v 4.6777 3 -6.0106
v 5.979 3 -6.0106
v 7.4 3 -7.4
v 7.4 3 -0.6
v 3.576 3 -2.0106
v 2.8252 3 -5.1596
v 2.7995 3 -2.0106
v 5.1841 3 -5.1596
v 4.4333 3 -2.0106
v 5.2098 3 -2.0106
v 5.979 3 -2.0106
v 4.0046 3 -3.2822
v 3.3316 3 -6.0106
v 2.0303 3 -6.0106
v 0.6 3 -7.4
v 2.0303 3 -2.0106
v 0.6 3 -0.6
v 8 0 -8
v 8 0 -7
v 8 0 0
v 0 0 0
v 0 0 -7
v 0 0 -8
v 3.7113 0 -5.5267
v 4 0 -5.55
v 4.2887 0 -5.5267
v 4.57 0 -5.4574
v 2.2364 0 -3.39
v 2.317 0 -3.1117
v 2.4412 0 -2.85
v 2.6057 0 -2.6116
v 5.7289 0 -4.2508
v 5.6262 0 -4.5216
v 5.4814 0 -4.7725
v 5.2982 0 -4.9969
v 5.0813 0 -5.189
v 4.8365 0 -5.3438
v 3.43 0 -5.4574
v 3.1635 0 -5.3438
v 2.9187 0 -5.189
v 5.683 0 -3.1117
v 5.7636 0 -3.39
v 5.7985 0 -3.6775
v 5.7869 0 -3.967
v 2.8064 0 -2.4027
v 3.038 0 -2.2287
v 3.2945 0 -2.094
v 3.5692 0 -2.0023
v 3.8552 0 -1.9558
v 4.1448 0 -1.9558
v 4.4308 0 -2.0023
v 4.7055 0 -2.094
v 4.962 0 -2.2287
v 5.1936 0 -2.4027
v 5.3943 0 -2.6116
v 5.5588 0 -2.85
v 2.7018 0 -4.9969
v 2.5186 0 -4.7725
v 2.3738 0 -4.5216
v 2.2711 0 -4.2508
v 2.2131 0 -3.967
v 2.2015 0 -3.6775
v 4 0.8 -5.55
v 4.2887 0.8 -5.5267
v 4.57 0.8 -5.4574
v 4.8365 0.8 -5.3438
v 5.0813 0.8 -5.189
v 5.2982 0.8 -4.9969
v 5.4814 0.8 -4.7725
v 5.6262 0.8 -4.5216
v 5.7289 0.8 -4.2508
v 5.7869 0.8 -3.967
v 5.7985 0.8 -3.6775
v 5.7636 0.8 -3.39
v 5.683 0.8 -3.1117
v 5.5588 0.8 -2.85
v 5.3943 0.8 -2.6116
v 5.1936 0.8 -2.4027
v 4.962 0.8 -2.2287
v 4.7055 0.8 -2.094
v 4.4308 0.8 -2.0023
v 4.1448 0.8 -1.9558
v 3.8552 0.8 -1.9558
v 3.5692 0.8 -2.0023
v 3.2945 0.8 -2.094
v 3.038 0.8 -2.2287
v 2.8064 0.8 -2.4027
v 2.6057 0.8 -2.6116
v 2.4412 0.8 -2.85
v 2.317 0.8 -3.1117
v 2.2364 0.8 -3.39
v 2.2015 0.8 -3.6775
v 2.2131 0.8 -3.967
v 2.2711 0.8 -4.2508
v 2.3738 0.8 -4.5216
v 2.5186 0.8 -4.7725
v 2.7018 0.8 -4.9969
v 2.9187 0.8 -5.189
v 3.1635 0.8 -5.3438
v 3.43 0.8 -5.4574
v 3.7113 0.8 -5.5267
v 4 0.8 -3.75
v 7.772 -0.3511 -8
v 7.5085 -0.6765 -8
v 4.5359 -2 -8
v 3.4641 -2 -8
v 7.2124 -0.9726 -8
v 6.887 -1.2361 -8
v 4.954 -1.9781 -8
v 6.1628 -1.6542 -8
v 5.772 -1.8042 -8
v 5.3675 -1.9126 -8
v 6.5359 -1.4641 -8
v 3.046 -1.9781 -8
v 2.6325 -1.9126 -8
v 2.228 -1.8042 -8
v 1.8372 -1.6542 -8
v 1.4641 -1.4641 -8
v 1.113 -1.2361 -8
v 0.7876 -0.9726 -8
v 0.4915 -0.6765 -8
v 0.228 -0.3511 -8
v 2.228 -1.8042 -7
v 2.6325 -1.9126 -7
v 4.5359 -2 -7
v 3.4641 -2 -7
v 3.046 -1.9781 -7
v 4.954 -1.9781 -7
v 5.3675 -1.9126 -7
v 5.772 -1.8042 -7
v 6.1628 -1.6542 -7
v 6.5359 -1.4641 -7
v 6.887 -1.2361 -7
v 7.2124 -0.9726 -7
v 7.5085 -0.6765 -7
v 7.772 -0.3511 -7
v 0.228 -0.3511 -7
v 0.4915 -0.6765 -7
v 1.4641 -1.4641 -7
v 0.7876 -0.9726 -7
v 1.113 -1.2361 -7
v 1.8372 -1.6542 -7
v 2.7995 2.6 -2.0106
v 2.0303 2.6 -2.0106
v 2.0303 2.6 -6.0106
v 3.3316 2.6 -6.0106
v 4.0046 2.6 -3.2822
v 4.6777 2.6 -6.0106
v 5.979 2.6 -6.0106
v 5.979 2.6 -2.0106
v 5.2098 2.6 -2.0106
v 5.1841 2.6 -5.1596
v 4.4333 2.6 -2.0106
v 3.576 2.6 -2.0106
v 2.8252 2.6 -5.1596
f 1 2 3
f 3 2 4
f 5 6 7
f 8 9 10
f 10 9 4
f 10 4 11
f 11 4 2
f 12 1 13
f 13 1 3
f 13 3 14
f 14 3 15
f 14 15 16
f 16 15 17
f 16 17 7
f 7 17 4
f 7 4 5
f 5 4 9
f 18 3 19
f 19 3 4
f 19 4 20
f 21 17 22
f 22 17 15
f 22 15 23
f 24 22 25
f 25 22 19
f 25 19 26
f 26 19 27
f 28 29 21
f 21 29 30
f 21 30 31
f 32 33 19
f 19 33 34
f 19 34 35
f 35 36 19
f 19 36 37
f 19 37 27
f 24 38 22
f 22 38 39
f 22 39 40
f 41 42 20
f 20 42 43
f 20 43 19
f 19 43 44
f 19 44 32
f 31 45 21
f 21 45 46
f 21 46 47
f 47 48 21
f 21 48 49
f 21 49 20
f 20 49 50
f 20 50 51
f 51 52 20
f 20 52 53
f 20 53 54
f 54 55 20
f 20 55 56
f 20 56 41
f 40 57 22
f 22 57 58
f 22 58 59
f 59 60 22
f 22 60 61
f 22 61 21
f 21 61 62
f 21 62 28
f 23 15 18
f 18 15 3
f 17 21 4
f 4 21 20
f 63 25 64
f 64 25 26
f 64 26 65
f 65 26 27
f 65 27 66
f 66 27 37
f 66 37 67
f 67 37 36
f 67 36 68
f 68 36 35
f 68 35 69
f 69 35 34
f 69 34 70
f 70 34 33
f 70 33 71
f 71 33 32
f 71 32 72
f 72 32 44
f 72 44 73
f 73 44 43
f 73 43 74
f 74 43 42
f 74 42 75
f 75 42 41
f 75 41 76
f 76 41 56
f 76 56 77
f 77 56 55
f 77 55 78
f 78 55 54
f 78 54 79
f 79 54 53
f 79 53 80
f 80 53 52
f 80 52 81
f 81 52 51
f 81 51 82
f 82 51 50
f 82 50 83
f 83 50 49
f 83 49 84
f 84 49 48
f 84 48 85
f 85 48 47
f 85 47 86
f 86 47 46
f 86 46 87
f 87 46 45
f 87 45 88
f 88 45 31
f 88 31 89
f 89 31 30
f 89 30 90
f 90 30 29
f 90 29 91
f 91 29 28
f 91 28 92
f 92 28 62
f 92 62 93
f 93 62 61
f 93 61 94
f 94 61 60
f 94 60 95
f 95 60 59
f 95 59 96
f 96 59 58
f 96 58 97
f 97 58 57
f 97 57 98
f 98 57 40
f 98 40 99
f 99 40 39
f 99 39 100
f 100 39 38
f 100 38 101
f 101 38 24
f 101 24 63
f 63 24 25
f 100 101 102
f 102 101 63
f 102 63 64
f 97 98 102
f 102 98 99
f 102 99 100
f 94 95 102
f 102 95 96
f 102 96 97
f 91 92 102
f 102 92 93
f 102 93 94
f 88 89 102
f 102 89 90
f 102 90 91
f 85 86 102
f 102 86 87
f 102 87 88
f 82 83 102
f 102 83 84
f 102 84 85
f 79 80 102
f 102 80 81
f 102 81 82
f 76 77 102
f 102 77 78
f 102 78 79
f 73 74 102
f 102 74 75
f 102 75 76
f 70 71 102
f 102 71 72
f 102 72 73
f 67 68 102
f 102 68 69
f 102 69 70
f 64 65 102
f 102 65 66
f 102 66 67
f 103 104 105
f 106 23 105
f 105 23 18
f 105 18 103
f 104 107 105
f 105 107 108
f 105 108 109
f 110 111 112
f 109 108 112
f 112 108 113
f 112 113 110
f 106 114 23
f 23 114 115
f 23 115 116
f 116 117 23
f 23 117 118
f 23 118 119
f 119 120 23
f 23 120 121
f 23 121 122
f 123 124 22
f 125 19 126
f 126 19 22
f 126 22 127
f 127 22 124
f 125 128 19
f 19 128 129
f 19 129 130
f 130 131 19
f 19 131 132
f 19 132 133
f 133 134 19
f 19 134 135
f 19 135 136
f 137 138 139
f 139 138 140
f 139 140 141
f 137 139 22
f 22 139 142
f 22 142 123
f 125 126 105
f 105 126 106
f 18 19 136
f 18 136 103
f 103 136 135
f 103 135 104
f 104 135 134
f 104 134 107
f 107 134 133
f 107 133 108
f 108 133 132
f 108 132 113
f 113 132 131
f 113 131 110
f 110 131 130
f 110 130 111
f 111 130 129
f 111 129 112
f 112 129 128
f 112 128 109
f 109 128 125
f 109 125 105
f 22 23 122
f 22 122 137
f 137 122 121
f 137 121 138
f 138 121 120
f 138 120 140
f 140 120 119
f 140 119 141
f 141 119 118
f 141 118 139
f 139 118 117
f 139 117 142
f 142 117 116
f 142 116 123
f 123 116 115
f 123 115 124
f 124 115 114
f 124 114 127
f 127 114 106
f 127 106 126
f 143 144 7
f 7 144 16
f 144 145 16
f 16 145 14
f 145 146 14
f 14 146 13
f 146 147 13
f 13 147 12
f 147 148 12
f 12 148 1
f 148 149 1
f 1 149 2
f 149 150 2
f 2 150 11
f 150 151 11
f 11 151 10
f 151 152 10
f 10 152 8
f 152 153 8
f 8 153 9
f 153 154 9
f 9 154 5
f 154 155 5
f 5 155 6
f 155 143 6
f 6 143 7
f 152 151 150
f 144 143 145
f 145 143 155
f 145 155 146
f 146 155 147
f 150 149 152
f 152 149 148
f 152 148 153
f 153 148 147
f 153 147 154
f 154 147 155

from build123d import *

# Parameters (mm, degrees)
SKETCH1_W               = 8
SKETCH1_H               = 8
BOSS_EXTRUDE1_DEPTH     = 3
CUT_EXTRUDE1_DEPTH      = 12.704699911
CUT_EXTRUDE1_DEPTH_BACK = 12.704699911
CUT_EXTRUDE2_DEPTH      = 11
SKETCH4_R               = 1.8
CUT_EXTRUDE3_DEPTH      = 0.8
SKETCH5_W               = 8
SKETCH5_H               = 1
BOSS_EXTRUDE2_DEPTH     = 2
FILLET1_R               = 4
CUT_EXTRUDE4_DEPTH      = 0.4


with BuildPart() as part:
    # Sketch1 → Boss-Extrude1 (new body)
    with BuildSketch(Plane(origin=(0, 0, 0), x_dir=(1, 0, 0), z_dir=(0, 1, 0))):
        with Locations((4, 4)):
            Rectangle(SKETCH1_W, SKETCH1_H)
    extrude(amount=BOSS_EXTRUDE1_DEPTH)

    # Sketch2 → Cut-Extrude1 (cut, two sides: drawn at the far end of the back side and taken through both)
    with BuildSketch(Plane.XY.offset(-CUT_EXTRUDE1_DEPTH_BACK)):
        Polygon((0, 0), (0.6, 3), (0, 3), align=None)
        Polygon((8, 0), (7.4, 3), (8, 3), align=None)
    extrude(amount=CUT_EXTRUDE1_DEPTH + CUT_EXTRUDE1_DEPTH_BACK, mode=Mode.SUBTRACT)

    # Sketch3 → Cut-Extrude2 (cut)
    with BuildSketch(Plane(origin=(0, 0, 0), x_dir=(0, 0, -1), z_dir=(1, 0, 0))):
        Polygon((0, 0), (0.6, 3), (0, 3), align=None)
        Polygon((8, 3), (7.4, 3), (8, 0), align=None)
    extrude(amount=CUT_EXTRUDE2_DEPTH, mode=Mode.SUBTRACT)

    # Sketch4 → Cut-Extrude3 (cut)
    with BuildSketch(Plane.XZ):
        with Locations(Location((4, -3.75, 0), (0, 0, 270))):
            Circle(SKETCH4_R)
    extrude(amount=-CUT_EXTRUDE3_DEPTH, mode=Mode.SUBTRACT)

    # Sketch5 → Boss-Extrude2 (add)
    with BuildSketch(Plane.XZ):
        with Locations((4, -7.5)):
            Rectangle(SKETCH5_W, SKETCH5_H)
    extrude(amount=BOSS_EXTRUDE2_DEPTH)

    # Fillet1
    # the kernel refuses this fillet: 4 mm, written as the material it takes off along each edge
    with BuildSketch(Plane(origin=(8, -2, -16.660254038), x_dir=(0, 1, 0), z_dir=(0, 0, 1)), Plane(origin=(0, -2, 1.660254038), x_dir=(0, 1, 0), z_dir=(0, 0, -1))) as fillet1_piece_1:
        with BuildLine():
            CenterArc((4, 3.464101615), FILLET1_R, 180, 60)
            Line((0, 3.464101615), (-0.08, 3.464101615))
            Line((-0.08, 3.464101615), (-0.08, 0))
            Line((-0.08, 0), (0, -0.08))
            ThreePointArc((0, -0.08), (1, -0.08), (1.96, -0.069282032))
            Line((1.96, -0.069282032), (2, 0))
        make_face()
    extrude(amount=18.320508076, mode=Mode.SUBTRACT)

    # Sketch6 → Cut-Extrude4 (cut)
    with BuildSketch(Plane(origin=(0, 3, 0), x_dir=(1, 0, 0), z_dir=(0, 1, 0))):
        Polygon((2.030290665, 2.010567225), (2.030290665, 6.010567225), (3.331572716, 6.010567225), (4.004649639, 3.28220184), (4.677726562, 6.010567225), (5.979008613, 6.010567225), (5.979008613, 2.010567225), (5.209777844, 2.010567225), (5.184136818, 5.159605686), (4.433335536, 2.010567225), (3.575963742, 2.010567225), (2.82516246, 5.159605686), (2.799521434, 2.010567225), align=None)
    extrude(amount=-CUT_EXTRUDE4_DEPTH, mode=Mode.SUBTRACT)


solid = part.part
